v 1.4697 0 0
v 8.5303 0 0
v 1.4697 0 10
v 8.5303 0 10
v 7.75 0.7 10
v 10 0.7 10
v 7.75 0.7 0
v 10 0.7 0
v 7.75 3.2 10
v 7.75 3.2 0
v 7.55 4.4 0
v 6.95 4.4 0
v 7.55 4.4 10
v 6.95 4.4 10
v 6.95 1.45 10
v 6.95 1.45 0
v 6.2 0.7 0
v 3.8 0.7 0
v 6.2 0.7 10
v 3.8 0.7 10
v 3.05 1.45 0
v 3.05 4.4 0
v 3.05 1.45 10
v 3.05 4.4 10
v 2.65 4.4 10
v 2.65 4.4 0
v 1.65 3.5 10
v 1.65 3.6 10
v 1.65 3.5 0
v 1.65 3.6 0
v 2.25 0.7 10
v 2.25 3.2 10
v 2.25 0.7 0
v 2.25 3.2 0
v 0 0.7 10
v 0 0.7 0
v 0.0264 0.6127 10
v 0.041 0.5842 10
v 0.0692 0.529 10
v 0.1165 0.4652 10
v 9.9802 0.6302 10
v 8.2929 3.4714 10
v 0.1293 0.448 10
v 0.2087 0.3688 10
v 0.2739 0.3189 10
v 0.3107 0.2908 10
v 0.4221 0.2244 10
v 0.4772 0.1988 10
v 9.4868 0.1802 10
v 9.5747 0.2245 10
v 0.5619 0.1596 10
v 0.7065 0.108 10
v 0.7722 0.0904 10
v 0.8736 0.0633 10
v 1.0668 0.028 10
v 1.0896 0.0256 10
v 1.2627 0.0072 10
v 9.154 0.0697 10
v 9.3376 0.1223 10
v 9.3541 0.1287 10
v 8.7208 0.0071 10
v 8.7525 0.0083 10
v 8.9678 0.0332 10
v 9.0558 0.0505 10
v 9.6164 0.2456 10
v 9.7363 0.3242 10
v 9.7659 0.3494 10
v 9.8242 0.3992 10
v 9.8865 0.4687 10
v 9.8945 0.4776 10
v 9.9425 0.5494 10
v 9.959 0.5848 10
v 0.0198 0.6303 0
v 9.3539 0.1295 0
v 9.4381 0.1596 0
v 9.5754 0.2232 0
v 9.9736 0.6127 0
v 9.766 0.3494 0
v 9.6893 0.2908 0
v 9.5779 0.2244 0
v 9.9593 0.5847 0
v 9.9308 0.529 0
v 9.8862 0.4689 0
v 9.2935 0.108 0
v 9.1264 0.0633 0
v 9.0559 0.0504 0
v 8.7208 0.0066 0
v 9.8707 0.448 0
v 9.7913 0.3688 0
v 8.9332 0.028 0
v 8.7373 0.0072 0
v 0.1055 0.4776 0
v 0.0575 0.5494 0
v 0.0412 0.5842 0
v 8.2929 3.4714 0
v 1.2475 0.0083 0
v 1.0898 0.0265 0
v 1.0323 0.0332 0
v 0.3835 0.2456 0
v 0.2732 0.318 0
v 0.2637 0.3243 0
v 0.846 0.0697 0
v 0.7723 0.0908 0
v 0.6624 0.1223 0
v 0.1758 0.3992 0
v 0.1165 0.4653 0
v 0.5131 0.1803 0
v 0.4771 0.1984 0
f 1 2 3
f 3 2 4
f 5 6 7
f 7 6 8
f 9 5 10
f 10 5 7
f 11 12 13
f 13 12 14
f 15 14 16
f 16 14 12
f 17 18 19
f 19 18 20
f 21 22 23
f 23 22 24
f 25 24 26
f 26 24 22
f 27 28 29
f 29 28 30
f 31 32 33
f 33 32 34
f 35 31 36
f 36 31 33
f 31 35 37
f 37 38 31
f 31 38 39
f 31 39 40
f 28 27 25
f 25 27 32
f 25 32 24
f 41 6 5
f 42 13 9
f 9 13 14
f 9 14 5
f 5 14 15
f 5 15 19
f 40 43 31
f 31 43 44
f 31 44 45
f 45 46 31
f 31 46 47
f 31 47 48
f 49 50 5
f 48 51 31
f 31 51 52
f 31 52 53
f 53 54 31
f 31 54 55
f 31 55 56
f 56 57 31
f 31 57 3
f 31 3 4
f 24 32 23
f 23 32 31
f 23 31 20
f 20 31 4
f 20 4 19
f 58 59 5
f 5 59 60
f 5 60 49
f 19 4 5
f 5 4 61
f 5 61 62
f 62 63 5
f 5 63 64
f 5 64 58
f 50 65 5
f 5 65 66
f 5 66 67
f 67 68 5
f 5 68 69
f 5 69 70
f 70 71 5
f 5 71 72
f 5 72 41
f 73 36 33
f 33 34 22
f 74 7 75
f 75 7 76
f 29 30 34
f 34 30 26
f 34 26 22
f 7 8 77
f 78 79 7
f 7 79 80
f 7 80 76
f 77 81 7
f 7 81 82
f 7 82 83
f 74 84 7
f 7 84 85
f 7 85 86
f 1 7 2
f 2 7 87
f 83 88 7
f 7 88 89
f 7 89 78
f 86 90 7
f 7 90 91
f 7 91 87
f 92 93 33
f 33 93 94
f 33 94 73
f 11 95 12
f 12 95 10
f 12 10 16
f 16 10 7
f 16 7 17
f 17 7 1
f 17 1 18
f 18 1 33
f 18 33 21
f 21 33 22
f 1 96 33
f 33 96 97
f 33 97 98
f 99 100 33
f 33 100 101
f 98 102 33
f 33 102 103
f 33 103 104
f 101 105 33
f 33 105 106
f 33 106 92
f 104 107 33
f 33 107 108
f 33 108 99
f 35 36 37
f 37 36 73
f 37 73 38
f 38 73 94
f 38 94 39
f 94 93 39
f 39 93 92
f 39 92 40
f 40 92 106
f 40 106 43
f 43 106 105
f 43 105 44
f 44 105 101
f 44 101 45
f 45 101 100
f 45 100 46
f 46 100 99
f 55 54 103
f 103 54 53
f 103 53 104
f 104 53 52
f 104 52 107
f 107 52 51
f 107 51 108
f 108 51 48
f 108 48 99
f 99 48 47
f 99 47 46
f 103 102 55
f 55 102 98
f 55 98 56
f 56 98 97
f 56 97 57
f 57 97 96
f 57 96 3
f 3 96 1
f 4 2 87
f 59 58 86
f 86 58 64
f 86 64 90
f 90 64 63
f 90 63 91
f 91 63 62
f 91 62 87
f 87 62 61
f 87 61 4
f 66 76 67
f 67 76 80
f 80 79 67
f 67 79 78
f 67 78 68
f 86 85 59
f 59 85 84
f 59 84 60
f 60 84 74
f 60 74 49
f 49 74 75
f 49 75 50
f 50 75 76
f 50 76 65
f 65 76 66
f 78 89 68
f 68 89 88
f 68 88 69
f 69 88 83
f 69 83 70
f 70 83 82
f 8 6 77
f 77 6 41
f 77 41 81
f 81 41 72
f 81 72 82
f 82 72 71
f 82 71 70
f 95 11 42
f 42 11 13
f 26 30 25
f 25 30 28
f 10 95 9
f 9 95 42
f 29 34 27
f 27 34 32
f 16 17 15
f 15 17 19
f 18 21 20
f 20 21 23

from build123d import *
from OCP.BRepFilletAPI import BRepFilletAPI_MakeChamfer

# Parameters (mm, degrees)
BOSS_EXTRUDE1_DEPTH = 10
FILLET1_START       = -1
FILLET1_DEPTH       = 12
FILLET2_SIZE        = 1
FILLET2_SIZE2       = 0.8
FILLET3_SIZE        = 0.3
FILLET3_SIZE_2      = 0.6
FILLET4_SIZE        = 0.75


with BuildPart() as part:
    # Sketch1 → Boss-Extrude1 (new body)
    with BuildSketch(Plane.XY):
        Polygon((0, 0), (0, 0.7), (2.25, 0.7), (2.25, 3.2), (1.65, 3.2), (1.65, 4.4), (3.05, 4.4), (3.05, 0.7), (6.95, 0.7), (6.95, 4.4), (8.35, 4.4), (8.35, 3.2), (7.75, 3.2), (7.75, 0.7), (10, 0.7), (10, 0), align=None)
    extrude(amount=BOSS_EXTRUDE1_DEPTH)

    # Fillet1: read off the stored shape, not the designer's step
    # Fillet1 outline → Fillet1 (cut)
    with BuildSketch(Plane.XY.offset(FILLET1_START)):
        with BuildLine():
            Line((0, 0), (1.469693846, 0))
            add(Edge.make_bspline(
                [(1.469693846, 0), (0.142886902, 0), (0, 0.7)],
                knots=[0, 0, 0, 1, 1, 1], degree=2, weights=[1, 0.774596669, 1]))
            Line((0, 0.7), (0, 0))
        make_face()
        with BuildLine():
            add(Edge.make_bspline(
                [(10, 0.7), (9.857113098, 0), (8.530306154, 0)],
                knots=[0, 0, 0, 1, 1, 1], degree=2, weights=[1, 0.774596669, 1]))
            Line((8.530306154, 0), (10, 0))
            Line((10, 0), (10, 0.7))
        make_face()
    extrude(amount=FILLET1_DEPTH, mode=Mode.SUBTRACT)

    # Fillet2: one chamfer whose edges measure the first distance from different faces: ONE call of the kernel's chamfer builder (chamfer() names one face for all edges)
    fillet2_edges_1 = [part.edges().sort_by_distance(p)[0] for p in [
        (1.65, 4.4, 5),
    ]]
    fillet2_side_1 = [part.faces().sort_by_distance(p)[0] for p in [
        (2.35, 4.4, 5),
    ]]
    fillet2_edges_2 = [part.edges().sort_by_distance(p)[0] for p in [
        (8.35, 4.4, 5),
    ]]
    fillet2_side_2 = [part.faces().sort_by_distance(p)[0] for p in [
        (8.35, 3.8, 5),
    ]]
    fillet2 = BRepFilletAPI_MakeChamfer(part.part.solid().wrapped)
    for e in fillet2_edges_1:
        fillet2.Add(FILLET2_SIZE, FILLET2_SIZE2, e.wrapped, fillet2_side_1[0].wrapped)  # the first distance lies on this face
    for e in fillet2_edges_2:
        fillet2.Add(FILLET2_SIZE, FILLET2_SIZE2, e.wrapped, fillet2_side_2[0].wrapped)  # the first distance lies on this face
    add(Compound.cast(fillet2.Shape()), mode=Mode.REPLACE)

    # Fillet3
    # the kernel refuses this chamfer: 0.6, 0.3 mm, written as the material it takes off along each edge
    with BuildSketch(Plane(origin=(1.65, 3.2, -1.553897324), x_dir=(0, 1, 0), z_dir=(0, 0, 1))) as fillet3_piece_1_section:
        Polygon((FILLET3_SIZE, 0), (0, -FILLET3_SIZE_2), (0, 0), align=None)
    fillet3_piece_1 = extrude(amount=13.107794649, mode=Mode.PRIVATE)
    fillet3_piece_1 = split(fillet3_piece_1, bisect_by=Plane(origin=(2.25, 3.2, -1.553897324), z_dir=(-1, 0, 0)), keep=Keep.TOP, mode=Mode.PRIVATE)
    add(fillet3_piece_1, mode=Mode.SUBTRACT)
    with BuildSketch(Plane(origin=(8.35, 3.2, -1.553897324), x_dir=(0, 1, 0), z_dir=(0, 0, 1))) as fillet3_piece_2_section:
        Polygon((FILLET3_SIZE, 0), (0, FILLET3_SIZE_2), (0, 0), align=None)
    fillet3_piece_2 = extrude(amount=13.107794649, mode=Mode.PRIVATE)
    fillet3_piece_2 = split(fillet3_piece_2, bisect_by=Plane(origin=(7.75, 3.2, -1.553897324), z_dir=(1, 0, 0)), keep=Keep.TOP, mode=Mode.PRIVATE)
    add(fillet3_piece_2, mode=Mode.SUBTRACT)

    # Fillet4
    fillet4_edges = [part.edges().sort_by_distance(p)[0] for p in [
        (3.05, 0.7, 5),
        (6.95, 0.7, 5),
    ]]
    chamfer(fillet4_edges, length=FILLET4_SIZE)


solid = part.part
